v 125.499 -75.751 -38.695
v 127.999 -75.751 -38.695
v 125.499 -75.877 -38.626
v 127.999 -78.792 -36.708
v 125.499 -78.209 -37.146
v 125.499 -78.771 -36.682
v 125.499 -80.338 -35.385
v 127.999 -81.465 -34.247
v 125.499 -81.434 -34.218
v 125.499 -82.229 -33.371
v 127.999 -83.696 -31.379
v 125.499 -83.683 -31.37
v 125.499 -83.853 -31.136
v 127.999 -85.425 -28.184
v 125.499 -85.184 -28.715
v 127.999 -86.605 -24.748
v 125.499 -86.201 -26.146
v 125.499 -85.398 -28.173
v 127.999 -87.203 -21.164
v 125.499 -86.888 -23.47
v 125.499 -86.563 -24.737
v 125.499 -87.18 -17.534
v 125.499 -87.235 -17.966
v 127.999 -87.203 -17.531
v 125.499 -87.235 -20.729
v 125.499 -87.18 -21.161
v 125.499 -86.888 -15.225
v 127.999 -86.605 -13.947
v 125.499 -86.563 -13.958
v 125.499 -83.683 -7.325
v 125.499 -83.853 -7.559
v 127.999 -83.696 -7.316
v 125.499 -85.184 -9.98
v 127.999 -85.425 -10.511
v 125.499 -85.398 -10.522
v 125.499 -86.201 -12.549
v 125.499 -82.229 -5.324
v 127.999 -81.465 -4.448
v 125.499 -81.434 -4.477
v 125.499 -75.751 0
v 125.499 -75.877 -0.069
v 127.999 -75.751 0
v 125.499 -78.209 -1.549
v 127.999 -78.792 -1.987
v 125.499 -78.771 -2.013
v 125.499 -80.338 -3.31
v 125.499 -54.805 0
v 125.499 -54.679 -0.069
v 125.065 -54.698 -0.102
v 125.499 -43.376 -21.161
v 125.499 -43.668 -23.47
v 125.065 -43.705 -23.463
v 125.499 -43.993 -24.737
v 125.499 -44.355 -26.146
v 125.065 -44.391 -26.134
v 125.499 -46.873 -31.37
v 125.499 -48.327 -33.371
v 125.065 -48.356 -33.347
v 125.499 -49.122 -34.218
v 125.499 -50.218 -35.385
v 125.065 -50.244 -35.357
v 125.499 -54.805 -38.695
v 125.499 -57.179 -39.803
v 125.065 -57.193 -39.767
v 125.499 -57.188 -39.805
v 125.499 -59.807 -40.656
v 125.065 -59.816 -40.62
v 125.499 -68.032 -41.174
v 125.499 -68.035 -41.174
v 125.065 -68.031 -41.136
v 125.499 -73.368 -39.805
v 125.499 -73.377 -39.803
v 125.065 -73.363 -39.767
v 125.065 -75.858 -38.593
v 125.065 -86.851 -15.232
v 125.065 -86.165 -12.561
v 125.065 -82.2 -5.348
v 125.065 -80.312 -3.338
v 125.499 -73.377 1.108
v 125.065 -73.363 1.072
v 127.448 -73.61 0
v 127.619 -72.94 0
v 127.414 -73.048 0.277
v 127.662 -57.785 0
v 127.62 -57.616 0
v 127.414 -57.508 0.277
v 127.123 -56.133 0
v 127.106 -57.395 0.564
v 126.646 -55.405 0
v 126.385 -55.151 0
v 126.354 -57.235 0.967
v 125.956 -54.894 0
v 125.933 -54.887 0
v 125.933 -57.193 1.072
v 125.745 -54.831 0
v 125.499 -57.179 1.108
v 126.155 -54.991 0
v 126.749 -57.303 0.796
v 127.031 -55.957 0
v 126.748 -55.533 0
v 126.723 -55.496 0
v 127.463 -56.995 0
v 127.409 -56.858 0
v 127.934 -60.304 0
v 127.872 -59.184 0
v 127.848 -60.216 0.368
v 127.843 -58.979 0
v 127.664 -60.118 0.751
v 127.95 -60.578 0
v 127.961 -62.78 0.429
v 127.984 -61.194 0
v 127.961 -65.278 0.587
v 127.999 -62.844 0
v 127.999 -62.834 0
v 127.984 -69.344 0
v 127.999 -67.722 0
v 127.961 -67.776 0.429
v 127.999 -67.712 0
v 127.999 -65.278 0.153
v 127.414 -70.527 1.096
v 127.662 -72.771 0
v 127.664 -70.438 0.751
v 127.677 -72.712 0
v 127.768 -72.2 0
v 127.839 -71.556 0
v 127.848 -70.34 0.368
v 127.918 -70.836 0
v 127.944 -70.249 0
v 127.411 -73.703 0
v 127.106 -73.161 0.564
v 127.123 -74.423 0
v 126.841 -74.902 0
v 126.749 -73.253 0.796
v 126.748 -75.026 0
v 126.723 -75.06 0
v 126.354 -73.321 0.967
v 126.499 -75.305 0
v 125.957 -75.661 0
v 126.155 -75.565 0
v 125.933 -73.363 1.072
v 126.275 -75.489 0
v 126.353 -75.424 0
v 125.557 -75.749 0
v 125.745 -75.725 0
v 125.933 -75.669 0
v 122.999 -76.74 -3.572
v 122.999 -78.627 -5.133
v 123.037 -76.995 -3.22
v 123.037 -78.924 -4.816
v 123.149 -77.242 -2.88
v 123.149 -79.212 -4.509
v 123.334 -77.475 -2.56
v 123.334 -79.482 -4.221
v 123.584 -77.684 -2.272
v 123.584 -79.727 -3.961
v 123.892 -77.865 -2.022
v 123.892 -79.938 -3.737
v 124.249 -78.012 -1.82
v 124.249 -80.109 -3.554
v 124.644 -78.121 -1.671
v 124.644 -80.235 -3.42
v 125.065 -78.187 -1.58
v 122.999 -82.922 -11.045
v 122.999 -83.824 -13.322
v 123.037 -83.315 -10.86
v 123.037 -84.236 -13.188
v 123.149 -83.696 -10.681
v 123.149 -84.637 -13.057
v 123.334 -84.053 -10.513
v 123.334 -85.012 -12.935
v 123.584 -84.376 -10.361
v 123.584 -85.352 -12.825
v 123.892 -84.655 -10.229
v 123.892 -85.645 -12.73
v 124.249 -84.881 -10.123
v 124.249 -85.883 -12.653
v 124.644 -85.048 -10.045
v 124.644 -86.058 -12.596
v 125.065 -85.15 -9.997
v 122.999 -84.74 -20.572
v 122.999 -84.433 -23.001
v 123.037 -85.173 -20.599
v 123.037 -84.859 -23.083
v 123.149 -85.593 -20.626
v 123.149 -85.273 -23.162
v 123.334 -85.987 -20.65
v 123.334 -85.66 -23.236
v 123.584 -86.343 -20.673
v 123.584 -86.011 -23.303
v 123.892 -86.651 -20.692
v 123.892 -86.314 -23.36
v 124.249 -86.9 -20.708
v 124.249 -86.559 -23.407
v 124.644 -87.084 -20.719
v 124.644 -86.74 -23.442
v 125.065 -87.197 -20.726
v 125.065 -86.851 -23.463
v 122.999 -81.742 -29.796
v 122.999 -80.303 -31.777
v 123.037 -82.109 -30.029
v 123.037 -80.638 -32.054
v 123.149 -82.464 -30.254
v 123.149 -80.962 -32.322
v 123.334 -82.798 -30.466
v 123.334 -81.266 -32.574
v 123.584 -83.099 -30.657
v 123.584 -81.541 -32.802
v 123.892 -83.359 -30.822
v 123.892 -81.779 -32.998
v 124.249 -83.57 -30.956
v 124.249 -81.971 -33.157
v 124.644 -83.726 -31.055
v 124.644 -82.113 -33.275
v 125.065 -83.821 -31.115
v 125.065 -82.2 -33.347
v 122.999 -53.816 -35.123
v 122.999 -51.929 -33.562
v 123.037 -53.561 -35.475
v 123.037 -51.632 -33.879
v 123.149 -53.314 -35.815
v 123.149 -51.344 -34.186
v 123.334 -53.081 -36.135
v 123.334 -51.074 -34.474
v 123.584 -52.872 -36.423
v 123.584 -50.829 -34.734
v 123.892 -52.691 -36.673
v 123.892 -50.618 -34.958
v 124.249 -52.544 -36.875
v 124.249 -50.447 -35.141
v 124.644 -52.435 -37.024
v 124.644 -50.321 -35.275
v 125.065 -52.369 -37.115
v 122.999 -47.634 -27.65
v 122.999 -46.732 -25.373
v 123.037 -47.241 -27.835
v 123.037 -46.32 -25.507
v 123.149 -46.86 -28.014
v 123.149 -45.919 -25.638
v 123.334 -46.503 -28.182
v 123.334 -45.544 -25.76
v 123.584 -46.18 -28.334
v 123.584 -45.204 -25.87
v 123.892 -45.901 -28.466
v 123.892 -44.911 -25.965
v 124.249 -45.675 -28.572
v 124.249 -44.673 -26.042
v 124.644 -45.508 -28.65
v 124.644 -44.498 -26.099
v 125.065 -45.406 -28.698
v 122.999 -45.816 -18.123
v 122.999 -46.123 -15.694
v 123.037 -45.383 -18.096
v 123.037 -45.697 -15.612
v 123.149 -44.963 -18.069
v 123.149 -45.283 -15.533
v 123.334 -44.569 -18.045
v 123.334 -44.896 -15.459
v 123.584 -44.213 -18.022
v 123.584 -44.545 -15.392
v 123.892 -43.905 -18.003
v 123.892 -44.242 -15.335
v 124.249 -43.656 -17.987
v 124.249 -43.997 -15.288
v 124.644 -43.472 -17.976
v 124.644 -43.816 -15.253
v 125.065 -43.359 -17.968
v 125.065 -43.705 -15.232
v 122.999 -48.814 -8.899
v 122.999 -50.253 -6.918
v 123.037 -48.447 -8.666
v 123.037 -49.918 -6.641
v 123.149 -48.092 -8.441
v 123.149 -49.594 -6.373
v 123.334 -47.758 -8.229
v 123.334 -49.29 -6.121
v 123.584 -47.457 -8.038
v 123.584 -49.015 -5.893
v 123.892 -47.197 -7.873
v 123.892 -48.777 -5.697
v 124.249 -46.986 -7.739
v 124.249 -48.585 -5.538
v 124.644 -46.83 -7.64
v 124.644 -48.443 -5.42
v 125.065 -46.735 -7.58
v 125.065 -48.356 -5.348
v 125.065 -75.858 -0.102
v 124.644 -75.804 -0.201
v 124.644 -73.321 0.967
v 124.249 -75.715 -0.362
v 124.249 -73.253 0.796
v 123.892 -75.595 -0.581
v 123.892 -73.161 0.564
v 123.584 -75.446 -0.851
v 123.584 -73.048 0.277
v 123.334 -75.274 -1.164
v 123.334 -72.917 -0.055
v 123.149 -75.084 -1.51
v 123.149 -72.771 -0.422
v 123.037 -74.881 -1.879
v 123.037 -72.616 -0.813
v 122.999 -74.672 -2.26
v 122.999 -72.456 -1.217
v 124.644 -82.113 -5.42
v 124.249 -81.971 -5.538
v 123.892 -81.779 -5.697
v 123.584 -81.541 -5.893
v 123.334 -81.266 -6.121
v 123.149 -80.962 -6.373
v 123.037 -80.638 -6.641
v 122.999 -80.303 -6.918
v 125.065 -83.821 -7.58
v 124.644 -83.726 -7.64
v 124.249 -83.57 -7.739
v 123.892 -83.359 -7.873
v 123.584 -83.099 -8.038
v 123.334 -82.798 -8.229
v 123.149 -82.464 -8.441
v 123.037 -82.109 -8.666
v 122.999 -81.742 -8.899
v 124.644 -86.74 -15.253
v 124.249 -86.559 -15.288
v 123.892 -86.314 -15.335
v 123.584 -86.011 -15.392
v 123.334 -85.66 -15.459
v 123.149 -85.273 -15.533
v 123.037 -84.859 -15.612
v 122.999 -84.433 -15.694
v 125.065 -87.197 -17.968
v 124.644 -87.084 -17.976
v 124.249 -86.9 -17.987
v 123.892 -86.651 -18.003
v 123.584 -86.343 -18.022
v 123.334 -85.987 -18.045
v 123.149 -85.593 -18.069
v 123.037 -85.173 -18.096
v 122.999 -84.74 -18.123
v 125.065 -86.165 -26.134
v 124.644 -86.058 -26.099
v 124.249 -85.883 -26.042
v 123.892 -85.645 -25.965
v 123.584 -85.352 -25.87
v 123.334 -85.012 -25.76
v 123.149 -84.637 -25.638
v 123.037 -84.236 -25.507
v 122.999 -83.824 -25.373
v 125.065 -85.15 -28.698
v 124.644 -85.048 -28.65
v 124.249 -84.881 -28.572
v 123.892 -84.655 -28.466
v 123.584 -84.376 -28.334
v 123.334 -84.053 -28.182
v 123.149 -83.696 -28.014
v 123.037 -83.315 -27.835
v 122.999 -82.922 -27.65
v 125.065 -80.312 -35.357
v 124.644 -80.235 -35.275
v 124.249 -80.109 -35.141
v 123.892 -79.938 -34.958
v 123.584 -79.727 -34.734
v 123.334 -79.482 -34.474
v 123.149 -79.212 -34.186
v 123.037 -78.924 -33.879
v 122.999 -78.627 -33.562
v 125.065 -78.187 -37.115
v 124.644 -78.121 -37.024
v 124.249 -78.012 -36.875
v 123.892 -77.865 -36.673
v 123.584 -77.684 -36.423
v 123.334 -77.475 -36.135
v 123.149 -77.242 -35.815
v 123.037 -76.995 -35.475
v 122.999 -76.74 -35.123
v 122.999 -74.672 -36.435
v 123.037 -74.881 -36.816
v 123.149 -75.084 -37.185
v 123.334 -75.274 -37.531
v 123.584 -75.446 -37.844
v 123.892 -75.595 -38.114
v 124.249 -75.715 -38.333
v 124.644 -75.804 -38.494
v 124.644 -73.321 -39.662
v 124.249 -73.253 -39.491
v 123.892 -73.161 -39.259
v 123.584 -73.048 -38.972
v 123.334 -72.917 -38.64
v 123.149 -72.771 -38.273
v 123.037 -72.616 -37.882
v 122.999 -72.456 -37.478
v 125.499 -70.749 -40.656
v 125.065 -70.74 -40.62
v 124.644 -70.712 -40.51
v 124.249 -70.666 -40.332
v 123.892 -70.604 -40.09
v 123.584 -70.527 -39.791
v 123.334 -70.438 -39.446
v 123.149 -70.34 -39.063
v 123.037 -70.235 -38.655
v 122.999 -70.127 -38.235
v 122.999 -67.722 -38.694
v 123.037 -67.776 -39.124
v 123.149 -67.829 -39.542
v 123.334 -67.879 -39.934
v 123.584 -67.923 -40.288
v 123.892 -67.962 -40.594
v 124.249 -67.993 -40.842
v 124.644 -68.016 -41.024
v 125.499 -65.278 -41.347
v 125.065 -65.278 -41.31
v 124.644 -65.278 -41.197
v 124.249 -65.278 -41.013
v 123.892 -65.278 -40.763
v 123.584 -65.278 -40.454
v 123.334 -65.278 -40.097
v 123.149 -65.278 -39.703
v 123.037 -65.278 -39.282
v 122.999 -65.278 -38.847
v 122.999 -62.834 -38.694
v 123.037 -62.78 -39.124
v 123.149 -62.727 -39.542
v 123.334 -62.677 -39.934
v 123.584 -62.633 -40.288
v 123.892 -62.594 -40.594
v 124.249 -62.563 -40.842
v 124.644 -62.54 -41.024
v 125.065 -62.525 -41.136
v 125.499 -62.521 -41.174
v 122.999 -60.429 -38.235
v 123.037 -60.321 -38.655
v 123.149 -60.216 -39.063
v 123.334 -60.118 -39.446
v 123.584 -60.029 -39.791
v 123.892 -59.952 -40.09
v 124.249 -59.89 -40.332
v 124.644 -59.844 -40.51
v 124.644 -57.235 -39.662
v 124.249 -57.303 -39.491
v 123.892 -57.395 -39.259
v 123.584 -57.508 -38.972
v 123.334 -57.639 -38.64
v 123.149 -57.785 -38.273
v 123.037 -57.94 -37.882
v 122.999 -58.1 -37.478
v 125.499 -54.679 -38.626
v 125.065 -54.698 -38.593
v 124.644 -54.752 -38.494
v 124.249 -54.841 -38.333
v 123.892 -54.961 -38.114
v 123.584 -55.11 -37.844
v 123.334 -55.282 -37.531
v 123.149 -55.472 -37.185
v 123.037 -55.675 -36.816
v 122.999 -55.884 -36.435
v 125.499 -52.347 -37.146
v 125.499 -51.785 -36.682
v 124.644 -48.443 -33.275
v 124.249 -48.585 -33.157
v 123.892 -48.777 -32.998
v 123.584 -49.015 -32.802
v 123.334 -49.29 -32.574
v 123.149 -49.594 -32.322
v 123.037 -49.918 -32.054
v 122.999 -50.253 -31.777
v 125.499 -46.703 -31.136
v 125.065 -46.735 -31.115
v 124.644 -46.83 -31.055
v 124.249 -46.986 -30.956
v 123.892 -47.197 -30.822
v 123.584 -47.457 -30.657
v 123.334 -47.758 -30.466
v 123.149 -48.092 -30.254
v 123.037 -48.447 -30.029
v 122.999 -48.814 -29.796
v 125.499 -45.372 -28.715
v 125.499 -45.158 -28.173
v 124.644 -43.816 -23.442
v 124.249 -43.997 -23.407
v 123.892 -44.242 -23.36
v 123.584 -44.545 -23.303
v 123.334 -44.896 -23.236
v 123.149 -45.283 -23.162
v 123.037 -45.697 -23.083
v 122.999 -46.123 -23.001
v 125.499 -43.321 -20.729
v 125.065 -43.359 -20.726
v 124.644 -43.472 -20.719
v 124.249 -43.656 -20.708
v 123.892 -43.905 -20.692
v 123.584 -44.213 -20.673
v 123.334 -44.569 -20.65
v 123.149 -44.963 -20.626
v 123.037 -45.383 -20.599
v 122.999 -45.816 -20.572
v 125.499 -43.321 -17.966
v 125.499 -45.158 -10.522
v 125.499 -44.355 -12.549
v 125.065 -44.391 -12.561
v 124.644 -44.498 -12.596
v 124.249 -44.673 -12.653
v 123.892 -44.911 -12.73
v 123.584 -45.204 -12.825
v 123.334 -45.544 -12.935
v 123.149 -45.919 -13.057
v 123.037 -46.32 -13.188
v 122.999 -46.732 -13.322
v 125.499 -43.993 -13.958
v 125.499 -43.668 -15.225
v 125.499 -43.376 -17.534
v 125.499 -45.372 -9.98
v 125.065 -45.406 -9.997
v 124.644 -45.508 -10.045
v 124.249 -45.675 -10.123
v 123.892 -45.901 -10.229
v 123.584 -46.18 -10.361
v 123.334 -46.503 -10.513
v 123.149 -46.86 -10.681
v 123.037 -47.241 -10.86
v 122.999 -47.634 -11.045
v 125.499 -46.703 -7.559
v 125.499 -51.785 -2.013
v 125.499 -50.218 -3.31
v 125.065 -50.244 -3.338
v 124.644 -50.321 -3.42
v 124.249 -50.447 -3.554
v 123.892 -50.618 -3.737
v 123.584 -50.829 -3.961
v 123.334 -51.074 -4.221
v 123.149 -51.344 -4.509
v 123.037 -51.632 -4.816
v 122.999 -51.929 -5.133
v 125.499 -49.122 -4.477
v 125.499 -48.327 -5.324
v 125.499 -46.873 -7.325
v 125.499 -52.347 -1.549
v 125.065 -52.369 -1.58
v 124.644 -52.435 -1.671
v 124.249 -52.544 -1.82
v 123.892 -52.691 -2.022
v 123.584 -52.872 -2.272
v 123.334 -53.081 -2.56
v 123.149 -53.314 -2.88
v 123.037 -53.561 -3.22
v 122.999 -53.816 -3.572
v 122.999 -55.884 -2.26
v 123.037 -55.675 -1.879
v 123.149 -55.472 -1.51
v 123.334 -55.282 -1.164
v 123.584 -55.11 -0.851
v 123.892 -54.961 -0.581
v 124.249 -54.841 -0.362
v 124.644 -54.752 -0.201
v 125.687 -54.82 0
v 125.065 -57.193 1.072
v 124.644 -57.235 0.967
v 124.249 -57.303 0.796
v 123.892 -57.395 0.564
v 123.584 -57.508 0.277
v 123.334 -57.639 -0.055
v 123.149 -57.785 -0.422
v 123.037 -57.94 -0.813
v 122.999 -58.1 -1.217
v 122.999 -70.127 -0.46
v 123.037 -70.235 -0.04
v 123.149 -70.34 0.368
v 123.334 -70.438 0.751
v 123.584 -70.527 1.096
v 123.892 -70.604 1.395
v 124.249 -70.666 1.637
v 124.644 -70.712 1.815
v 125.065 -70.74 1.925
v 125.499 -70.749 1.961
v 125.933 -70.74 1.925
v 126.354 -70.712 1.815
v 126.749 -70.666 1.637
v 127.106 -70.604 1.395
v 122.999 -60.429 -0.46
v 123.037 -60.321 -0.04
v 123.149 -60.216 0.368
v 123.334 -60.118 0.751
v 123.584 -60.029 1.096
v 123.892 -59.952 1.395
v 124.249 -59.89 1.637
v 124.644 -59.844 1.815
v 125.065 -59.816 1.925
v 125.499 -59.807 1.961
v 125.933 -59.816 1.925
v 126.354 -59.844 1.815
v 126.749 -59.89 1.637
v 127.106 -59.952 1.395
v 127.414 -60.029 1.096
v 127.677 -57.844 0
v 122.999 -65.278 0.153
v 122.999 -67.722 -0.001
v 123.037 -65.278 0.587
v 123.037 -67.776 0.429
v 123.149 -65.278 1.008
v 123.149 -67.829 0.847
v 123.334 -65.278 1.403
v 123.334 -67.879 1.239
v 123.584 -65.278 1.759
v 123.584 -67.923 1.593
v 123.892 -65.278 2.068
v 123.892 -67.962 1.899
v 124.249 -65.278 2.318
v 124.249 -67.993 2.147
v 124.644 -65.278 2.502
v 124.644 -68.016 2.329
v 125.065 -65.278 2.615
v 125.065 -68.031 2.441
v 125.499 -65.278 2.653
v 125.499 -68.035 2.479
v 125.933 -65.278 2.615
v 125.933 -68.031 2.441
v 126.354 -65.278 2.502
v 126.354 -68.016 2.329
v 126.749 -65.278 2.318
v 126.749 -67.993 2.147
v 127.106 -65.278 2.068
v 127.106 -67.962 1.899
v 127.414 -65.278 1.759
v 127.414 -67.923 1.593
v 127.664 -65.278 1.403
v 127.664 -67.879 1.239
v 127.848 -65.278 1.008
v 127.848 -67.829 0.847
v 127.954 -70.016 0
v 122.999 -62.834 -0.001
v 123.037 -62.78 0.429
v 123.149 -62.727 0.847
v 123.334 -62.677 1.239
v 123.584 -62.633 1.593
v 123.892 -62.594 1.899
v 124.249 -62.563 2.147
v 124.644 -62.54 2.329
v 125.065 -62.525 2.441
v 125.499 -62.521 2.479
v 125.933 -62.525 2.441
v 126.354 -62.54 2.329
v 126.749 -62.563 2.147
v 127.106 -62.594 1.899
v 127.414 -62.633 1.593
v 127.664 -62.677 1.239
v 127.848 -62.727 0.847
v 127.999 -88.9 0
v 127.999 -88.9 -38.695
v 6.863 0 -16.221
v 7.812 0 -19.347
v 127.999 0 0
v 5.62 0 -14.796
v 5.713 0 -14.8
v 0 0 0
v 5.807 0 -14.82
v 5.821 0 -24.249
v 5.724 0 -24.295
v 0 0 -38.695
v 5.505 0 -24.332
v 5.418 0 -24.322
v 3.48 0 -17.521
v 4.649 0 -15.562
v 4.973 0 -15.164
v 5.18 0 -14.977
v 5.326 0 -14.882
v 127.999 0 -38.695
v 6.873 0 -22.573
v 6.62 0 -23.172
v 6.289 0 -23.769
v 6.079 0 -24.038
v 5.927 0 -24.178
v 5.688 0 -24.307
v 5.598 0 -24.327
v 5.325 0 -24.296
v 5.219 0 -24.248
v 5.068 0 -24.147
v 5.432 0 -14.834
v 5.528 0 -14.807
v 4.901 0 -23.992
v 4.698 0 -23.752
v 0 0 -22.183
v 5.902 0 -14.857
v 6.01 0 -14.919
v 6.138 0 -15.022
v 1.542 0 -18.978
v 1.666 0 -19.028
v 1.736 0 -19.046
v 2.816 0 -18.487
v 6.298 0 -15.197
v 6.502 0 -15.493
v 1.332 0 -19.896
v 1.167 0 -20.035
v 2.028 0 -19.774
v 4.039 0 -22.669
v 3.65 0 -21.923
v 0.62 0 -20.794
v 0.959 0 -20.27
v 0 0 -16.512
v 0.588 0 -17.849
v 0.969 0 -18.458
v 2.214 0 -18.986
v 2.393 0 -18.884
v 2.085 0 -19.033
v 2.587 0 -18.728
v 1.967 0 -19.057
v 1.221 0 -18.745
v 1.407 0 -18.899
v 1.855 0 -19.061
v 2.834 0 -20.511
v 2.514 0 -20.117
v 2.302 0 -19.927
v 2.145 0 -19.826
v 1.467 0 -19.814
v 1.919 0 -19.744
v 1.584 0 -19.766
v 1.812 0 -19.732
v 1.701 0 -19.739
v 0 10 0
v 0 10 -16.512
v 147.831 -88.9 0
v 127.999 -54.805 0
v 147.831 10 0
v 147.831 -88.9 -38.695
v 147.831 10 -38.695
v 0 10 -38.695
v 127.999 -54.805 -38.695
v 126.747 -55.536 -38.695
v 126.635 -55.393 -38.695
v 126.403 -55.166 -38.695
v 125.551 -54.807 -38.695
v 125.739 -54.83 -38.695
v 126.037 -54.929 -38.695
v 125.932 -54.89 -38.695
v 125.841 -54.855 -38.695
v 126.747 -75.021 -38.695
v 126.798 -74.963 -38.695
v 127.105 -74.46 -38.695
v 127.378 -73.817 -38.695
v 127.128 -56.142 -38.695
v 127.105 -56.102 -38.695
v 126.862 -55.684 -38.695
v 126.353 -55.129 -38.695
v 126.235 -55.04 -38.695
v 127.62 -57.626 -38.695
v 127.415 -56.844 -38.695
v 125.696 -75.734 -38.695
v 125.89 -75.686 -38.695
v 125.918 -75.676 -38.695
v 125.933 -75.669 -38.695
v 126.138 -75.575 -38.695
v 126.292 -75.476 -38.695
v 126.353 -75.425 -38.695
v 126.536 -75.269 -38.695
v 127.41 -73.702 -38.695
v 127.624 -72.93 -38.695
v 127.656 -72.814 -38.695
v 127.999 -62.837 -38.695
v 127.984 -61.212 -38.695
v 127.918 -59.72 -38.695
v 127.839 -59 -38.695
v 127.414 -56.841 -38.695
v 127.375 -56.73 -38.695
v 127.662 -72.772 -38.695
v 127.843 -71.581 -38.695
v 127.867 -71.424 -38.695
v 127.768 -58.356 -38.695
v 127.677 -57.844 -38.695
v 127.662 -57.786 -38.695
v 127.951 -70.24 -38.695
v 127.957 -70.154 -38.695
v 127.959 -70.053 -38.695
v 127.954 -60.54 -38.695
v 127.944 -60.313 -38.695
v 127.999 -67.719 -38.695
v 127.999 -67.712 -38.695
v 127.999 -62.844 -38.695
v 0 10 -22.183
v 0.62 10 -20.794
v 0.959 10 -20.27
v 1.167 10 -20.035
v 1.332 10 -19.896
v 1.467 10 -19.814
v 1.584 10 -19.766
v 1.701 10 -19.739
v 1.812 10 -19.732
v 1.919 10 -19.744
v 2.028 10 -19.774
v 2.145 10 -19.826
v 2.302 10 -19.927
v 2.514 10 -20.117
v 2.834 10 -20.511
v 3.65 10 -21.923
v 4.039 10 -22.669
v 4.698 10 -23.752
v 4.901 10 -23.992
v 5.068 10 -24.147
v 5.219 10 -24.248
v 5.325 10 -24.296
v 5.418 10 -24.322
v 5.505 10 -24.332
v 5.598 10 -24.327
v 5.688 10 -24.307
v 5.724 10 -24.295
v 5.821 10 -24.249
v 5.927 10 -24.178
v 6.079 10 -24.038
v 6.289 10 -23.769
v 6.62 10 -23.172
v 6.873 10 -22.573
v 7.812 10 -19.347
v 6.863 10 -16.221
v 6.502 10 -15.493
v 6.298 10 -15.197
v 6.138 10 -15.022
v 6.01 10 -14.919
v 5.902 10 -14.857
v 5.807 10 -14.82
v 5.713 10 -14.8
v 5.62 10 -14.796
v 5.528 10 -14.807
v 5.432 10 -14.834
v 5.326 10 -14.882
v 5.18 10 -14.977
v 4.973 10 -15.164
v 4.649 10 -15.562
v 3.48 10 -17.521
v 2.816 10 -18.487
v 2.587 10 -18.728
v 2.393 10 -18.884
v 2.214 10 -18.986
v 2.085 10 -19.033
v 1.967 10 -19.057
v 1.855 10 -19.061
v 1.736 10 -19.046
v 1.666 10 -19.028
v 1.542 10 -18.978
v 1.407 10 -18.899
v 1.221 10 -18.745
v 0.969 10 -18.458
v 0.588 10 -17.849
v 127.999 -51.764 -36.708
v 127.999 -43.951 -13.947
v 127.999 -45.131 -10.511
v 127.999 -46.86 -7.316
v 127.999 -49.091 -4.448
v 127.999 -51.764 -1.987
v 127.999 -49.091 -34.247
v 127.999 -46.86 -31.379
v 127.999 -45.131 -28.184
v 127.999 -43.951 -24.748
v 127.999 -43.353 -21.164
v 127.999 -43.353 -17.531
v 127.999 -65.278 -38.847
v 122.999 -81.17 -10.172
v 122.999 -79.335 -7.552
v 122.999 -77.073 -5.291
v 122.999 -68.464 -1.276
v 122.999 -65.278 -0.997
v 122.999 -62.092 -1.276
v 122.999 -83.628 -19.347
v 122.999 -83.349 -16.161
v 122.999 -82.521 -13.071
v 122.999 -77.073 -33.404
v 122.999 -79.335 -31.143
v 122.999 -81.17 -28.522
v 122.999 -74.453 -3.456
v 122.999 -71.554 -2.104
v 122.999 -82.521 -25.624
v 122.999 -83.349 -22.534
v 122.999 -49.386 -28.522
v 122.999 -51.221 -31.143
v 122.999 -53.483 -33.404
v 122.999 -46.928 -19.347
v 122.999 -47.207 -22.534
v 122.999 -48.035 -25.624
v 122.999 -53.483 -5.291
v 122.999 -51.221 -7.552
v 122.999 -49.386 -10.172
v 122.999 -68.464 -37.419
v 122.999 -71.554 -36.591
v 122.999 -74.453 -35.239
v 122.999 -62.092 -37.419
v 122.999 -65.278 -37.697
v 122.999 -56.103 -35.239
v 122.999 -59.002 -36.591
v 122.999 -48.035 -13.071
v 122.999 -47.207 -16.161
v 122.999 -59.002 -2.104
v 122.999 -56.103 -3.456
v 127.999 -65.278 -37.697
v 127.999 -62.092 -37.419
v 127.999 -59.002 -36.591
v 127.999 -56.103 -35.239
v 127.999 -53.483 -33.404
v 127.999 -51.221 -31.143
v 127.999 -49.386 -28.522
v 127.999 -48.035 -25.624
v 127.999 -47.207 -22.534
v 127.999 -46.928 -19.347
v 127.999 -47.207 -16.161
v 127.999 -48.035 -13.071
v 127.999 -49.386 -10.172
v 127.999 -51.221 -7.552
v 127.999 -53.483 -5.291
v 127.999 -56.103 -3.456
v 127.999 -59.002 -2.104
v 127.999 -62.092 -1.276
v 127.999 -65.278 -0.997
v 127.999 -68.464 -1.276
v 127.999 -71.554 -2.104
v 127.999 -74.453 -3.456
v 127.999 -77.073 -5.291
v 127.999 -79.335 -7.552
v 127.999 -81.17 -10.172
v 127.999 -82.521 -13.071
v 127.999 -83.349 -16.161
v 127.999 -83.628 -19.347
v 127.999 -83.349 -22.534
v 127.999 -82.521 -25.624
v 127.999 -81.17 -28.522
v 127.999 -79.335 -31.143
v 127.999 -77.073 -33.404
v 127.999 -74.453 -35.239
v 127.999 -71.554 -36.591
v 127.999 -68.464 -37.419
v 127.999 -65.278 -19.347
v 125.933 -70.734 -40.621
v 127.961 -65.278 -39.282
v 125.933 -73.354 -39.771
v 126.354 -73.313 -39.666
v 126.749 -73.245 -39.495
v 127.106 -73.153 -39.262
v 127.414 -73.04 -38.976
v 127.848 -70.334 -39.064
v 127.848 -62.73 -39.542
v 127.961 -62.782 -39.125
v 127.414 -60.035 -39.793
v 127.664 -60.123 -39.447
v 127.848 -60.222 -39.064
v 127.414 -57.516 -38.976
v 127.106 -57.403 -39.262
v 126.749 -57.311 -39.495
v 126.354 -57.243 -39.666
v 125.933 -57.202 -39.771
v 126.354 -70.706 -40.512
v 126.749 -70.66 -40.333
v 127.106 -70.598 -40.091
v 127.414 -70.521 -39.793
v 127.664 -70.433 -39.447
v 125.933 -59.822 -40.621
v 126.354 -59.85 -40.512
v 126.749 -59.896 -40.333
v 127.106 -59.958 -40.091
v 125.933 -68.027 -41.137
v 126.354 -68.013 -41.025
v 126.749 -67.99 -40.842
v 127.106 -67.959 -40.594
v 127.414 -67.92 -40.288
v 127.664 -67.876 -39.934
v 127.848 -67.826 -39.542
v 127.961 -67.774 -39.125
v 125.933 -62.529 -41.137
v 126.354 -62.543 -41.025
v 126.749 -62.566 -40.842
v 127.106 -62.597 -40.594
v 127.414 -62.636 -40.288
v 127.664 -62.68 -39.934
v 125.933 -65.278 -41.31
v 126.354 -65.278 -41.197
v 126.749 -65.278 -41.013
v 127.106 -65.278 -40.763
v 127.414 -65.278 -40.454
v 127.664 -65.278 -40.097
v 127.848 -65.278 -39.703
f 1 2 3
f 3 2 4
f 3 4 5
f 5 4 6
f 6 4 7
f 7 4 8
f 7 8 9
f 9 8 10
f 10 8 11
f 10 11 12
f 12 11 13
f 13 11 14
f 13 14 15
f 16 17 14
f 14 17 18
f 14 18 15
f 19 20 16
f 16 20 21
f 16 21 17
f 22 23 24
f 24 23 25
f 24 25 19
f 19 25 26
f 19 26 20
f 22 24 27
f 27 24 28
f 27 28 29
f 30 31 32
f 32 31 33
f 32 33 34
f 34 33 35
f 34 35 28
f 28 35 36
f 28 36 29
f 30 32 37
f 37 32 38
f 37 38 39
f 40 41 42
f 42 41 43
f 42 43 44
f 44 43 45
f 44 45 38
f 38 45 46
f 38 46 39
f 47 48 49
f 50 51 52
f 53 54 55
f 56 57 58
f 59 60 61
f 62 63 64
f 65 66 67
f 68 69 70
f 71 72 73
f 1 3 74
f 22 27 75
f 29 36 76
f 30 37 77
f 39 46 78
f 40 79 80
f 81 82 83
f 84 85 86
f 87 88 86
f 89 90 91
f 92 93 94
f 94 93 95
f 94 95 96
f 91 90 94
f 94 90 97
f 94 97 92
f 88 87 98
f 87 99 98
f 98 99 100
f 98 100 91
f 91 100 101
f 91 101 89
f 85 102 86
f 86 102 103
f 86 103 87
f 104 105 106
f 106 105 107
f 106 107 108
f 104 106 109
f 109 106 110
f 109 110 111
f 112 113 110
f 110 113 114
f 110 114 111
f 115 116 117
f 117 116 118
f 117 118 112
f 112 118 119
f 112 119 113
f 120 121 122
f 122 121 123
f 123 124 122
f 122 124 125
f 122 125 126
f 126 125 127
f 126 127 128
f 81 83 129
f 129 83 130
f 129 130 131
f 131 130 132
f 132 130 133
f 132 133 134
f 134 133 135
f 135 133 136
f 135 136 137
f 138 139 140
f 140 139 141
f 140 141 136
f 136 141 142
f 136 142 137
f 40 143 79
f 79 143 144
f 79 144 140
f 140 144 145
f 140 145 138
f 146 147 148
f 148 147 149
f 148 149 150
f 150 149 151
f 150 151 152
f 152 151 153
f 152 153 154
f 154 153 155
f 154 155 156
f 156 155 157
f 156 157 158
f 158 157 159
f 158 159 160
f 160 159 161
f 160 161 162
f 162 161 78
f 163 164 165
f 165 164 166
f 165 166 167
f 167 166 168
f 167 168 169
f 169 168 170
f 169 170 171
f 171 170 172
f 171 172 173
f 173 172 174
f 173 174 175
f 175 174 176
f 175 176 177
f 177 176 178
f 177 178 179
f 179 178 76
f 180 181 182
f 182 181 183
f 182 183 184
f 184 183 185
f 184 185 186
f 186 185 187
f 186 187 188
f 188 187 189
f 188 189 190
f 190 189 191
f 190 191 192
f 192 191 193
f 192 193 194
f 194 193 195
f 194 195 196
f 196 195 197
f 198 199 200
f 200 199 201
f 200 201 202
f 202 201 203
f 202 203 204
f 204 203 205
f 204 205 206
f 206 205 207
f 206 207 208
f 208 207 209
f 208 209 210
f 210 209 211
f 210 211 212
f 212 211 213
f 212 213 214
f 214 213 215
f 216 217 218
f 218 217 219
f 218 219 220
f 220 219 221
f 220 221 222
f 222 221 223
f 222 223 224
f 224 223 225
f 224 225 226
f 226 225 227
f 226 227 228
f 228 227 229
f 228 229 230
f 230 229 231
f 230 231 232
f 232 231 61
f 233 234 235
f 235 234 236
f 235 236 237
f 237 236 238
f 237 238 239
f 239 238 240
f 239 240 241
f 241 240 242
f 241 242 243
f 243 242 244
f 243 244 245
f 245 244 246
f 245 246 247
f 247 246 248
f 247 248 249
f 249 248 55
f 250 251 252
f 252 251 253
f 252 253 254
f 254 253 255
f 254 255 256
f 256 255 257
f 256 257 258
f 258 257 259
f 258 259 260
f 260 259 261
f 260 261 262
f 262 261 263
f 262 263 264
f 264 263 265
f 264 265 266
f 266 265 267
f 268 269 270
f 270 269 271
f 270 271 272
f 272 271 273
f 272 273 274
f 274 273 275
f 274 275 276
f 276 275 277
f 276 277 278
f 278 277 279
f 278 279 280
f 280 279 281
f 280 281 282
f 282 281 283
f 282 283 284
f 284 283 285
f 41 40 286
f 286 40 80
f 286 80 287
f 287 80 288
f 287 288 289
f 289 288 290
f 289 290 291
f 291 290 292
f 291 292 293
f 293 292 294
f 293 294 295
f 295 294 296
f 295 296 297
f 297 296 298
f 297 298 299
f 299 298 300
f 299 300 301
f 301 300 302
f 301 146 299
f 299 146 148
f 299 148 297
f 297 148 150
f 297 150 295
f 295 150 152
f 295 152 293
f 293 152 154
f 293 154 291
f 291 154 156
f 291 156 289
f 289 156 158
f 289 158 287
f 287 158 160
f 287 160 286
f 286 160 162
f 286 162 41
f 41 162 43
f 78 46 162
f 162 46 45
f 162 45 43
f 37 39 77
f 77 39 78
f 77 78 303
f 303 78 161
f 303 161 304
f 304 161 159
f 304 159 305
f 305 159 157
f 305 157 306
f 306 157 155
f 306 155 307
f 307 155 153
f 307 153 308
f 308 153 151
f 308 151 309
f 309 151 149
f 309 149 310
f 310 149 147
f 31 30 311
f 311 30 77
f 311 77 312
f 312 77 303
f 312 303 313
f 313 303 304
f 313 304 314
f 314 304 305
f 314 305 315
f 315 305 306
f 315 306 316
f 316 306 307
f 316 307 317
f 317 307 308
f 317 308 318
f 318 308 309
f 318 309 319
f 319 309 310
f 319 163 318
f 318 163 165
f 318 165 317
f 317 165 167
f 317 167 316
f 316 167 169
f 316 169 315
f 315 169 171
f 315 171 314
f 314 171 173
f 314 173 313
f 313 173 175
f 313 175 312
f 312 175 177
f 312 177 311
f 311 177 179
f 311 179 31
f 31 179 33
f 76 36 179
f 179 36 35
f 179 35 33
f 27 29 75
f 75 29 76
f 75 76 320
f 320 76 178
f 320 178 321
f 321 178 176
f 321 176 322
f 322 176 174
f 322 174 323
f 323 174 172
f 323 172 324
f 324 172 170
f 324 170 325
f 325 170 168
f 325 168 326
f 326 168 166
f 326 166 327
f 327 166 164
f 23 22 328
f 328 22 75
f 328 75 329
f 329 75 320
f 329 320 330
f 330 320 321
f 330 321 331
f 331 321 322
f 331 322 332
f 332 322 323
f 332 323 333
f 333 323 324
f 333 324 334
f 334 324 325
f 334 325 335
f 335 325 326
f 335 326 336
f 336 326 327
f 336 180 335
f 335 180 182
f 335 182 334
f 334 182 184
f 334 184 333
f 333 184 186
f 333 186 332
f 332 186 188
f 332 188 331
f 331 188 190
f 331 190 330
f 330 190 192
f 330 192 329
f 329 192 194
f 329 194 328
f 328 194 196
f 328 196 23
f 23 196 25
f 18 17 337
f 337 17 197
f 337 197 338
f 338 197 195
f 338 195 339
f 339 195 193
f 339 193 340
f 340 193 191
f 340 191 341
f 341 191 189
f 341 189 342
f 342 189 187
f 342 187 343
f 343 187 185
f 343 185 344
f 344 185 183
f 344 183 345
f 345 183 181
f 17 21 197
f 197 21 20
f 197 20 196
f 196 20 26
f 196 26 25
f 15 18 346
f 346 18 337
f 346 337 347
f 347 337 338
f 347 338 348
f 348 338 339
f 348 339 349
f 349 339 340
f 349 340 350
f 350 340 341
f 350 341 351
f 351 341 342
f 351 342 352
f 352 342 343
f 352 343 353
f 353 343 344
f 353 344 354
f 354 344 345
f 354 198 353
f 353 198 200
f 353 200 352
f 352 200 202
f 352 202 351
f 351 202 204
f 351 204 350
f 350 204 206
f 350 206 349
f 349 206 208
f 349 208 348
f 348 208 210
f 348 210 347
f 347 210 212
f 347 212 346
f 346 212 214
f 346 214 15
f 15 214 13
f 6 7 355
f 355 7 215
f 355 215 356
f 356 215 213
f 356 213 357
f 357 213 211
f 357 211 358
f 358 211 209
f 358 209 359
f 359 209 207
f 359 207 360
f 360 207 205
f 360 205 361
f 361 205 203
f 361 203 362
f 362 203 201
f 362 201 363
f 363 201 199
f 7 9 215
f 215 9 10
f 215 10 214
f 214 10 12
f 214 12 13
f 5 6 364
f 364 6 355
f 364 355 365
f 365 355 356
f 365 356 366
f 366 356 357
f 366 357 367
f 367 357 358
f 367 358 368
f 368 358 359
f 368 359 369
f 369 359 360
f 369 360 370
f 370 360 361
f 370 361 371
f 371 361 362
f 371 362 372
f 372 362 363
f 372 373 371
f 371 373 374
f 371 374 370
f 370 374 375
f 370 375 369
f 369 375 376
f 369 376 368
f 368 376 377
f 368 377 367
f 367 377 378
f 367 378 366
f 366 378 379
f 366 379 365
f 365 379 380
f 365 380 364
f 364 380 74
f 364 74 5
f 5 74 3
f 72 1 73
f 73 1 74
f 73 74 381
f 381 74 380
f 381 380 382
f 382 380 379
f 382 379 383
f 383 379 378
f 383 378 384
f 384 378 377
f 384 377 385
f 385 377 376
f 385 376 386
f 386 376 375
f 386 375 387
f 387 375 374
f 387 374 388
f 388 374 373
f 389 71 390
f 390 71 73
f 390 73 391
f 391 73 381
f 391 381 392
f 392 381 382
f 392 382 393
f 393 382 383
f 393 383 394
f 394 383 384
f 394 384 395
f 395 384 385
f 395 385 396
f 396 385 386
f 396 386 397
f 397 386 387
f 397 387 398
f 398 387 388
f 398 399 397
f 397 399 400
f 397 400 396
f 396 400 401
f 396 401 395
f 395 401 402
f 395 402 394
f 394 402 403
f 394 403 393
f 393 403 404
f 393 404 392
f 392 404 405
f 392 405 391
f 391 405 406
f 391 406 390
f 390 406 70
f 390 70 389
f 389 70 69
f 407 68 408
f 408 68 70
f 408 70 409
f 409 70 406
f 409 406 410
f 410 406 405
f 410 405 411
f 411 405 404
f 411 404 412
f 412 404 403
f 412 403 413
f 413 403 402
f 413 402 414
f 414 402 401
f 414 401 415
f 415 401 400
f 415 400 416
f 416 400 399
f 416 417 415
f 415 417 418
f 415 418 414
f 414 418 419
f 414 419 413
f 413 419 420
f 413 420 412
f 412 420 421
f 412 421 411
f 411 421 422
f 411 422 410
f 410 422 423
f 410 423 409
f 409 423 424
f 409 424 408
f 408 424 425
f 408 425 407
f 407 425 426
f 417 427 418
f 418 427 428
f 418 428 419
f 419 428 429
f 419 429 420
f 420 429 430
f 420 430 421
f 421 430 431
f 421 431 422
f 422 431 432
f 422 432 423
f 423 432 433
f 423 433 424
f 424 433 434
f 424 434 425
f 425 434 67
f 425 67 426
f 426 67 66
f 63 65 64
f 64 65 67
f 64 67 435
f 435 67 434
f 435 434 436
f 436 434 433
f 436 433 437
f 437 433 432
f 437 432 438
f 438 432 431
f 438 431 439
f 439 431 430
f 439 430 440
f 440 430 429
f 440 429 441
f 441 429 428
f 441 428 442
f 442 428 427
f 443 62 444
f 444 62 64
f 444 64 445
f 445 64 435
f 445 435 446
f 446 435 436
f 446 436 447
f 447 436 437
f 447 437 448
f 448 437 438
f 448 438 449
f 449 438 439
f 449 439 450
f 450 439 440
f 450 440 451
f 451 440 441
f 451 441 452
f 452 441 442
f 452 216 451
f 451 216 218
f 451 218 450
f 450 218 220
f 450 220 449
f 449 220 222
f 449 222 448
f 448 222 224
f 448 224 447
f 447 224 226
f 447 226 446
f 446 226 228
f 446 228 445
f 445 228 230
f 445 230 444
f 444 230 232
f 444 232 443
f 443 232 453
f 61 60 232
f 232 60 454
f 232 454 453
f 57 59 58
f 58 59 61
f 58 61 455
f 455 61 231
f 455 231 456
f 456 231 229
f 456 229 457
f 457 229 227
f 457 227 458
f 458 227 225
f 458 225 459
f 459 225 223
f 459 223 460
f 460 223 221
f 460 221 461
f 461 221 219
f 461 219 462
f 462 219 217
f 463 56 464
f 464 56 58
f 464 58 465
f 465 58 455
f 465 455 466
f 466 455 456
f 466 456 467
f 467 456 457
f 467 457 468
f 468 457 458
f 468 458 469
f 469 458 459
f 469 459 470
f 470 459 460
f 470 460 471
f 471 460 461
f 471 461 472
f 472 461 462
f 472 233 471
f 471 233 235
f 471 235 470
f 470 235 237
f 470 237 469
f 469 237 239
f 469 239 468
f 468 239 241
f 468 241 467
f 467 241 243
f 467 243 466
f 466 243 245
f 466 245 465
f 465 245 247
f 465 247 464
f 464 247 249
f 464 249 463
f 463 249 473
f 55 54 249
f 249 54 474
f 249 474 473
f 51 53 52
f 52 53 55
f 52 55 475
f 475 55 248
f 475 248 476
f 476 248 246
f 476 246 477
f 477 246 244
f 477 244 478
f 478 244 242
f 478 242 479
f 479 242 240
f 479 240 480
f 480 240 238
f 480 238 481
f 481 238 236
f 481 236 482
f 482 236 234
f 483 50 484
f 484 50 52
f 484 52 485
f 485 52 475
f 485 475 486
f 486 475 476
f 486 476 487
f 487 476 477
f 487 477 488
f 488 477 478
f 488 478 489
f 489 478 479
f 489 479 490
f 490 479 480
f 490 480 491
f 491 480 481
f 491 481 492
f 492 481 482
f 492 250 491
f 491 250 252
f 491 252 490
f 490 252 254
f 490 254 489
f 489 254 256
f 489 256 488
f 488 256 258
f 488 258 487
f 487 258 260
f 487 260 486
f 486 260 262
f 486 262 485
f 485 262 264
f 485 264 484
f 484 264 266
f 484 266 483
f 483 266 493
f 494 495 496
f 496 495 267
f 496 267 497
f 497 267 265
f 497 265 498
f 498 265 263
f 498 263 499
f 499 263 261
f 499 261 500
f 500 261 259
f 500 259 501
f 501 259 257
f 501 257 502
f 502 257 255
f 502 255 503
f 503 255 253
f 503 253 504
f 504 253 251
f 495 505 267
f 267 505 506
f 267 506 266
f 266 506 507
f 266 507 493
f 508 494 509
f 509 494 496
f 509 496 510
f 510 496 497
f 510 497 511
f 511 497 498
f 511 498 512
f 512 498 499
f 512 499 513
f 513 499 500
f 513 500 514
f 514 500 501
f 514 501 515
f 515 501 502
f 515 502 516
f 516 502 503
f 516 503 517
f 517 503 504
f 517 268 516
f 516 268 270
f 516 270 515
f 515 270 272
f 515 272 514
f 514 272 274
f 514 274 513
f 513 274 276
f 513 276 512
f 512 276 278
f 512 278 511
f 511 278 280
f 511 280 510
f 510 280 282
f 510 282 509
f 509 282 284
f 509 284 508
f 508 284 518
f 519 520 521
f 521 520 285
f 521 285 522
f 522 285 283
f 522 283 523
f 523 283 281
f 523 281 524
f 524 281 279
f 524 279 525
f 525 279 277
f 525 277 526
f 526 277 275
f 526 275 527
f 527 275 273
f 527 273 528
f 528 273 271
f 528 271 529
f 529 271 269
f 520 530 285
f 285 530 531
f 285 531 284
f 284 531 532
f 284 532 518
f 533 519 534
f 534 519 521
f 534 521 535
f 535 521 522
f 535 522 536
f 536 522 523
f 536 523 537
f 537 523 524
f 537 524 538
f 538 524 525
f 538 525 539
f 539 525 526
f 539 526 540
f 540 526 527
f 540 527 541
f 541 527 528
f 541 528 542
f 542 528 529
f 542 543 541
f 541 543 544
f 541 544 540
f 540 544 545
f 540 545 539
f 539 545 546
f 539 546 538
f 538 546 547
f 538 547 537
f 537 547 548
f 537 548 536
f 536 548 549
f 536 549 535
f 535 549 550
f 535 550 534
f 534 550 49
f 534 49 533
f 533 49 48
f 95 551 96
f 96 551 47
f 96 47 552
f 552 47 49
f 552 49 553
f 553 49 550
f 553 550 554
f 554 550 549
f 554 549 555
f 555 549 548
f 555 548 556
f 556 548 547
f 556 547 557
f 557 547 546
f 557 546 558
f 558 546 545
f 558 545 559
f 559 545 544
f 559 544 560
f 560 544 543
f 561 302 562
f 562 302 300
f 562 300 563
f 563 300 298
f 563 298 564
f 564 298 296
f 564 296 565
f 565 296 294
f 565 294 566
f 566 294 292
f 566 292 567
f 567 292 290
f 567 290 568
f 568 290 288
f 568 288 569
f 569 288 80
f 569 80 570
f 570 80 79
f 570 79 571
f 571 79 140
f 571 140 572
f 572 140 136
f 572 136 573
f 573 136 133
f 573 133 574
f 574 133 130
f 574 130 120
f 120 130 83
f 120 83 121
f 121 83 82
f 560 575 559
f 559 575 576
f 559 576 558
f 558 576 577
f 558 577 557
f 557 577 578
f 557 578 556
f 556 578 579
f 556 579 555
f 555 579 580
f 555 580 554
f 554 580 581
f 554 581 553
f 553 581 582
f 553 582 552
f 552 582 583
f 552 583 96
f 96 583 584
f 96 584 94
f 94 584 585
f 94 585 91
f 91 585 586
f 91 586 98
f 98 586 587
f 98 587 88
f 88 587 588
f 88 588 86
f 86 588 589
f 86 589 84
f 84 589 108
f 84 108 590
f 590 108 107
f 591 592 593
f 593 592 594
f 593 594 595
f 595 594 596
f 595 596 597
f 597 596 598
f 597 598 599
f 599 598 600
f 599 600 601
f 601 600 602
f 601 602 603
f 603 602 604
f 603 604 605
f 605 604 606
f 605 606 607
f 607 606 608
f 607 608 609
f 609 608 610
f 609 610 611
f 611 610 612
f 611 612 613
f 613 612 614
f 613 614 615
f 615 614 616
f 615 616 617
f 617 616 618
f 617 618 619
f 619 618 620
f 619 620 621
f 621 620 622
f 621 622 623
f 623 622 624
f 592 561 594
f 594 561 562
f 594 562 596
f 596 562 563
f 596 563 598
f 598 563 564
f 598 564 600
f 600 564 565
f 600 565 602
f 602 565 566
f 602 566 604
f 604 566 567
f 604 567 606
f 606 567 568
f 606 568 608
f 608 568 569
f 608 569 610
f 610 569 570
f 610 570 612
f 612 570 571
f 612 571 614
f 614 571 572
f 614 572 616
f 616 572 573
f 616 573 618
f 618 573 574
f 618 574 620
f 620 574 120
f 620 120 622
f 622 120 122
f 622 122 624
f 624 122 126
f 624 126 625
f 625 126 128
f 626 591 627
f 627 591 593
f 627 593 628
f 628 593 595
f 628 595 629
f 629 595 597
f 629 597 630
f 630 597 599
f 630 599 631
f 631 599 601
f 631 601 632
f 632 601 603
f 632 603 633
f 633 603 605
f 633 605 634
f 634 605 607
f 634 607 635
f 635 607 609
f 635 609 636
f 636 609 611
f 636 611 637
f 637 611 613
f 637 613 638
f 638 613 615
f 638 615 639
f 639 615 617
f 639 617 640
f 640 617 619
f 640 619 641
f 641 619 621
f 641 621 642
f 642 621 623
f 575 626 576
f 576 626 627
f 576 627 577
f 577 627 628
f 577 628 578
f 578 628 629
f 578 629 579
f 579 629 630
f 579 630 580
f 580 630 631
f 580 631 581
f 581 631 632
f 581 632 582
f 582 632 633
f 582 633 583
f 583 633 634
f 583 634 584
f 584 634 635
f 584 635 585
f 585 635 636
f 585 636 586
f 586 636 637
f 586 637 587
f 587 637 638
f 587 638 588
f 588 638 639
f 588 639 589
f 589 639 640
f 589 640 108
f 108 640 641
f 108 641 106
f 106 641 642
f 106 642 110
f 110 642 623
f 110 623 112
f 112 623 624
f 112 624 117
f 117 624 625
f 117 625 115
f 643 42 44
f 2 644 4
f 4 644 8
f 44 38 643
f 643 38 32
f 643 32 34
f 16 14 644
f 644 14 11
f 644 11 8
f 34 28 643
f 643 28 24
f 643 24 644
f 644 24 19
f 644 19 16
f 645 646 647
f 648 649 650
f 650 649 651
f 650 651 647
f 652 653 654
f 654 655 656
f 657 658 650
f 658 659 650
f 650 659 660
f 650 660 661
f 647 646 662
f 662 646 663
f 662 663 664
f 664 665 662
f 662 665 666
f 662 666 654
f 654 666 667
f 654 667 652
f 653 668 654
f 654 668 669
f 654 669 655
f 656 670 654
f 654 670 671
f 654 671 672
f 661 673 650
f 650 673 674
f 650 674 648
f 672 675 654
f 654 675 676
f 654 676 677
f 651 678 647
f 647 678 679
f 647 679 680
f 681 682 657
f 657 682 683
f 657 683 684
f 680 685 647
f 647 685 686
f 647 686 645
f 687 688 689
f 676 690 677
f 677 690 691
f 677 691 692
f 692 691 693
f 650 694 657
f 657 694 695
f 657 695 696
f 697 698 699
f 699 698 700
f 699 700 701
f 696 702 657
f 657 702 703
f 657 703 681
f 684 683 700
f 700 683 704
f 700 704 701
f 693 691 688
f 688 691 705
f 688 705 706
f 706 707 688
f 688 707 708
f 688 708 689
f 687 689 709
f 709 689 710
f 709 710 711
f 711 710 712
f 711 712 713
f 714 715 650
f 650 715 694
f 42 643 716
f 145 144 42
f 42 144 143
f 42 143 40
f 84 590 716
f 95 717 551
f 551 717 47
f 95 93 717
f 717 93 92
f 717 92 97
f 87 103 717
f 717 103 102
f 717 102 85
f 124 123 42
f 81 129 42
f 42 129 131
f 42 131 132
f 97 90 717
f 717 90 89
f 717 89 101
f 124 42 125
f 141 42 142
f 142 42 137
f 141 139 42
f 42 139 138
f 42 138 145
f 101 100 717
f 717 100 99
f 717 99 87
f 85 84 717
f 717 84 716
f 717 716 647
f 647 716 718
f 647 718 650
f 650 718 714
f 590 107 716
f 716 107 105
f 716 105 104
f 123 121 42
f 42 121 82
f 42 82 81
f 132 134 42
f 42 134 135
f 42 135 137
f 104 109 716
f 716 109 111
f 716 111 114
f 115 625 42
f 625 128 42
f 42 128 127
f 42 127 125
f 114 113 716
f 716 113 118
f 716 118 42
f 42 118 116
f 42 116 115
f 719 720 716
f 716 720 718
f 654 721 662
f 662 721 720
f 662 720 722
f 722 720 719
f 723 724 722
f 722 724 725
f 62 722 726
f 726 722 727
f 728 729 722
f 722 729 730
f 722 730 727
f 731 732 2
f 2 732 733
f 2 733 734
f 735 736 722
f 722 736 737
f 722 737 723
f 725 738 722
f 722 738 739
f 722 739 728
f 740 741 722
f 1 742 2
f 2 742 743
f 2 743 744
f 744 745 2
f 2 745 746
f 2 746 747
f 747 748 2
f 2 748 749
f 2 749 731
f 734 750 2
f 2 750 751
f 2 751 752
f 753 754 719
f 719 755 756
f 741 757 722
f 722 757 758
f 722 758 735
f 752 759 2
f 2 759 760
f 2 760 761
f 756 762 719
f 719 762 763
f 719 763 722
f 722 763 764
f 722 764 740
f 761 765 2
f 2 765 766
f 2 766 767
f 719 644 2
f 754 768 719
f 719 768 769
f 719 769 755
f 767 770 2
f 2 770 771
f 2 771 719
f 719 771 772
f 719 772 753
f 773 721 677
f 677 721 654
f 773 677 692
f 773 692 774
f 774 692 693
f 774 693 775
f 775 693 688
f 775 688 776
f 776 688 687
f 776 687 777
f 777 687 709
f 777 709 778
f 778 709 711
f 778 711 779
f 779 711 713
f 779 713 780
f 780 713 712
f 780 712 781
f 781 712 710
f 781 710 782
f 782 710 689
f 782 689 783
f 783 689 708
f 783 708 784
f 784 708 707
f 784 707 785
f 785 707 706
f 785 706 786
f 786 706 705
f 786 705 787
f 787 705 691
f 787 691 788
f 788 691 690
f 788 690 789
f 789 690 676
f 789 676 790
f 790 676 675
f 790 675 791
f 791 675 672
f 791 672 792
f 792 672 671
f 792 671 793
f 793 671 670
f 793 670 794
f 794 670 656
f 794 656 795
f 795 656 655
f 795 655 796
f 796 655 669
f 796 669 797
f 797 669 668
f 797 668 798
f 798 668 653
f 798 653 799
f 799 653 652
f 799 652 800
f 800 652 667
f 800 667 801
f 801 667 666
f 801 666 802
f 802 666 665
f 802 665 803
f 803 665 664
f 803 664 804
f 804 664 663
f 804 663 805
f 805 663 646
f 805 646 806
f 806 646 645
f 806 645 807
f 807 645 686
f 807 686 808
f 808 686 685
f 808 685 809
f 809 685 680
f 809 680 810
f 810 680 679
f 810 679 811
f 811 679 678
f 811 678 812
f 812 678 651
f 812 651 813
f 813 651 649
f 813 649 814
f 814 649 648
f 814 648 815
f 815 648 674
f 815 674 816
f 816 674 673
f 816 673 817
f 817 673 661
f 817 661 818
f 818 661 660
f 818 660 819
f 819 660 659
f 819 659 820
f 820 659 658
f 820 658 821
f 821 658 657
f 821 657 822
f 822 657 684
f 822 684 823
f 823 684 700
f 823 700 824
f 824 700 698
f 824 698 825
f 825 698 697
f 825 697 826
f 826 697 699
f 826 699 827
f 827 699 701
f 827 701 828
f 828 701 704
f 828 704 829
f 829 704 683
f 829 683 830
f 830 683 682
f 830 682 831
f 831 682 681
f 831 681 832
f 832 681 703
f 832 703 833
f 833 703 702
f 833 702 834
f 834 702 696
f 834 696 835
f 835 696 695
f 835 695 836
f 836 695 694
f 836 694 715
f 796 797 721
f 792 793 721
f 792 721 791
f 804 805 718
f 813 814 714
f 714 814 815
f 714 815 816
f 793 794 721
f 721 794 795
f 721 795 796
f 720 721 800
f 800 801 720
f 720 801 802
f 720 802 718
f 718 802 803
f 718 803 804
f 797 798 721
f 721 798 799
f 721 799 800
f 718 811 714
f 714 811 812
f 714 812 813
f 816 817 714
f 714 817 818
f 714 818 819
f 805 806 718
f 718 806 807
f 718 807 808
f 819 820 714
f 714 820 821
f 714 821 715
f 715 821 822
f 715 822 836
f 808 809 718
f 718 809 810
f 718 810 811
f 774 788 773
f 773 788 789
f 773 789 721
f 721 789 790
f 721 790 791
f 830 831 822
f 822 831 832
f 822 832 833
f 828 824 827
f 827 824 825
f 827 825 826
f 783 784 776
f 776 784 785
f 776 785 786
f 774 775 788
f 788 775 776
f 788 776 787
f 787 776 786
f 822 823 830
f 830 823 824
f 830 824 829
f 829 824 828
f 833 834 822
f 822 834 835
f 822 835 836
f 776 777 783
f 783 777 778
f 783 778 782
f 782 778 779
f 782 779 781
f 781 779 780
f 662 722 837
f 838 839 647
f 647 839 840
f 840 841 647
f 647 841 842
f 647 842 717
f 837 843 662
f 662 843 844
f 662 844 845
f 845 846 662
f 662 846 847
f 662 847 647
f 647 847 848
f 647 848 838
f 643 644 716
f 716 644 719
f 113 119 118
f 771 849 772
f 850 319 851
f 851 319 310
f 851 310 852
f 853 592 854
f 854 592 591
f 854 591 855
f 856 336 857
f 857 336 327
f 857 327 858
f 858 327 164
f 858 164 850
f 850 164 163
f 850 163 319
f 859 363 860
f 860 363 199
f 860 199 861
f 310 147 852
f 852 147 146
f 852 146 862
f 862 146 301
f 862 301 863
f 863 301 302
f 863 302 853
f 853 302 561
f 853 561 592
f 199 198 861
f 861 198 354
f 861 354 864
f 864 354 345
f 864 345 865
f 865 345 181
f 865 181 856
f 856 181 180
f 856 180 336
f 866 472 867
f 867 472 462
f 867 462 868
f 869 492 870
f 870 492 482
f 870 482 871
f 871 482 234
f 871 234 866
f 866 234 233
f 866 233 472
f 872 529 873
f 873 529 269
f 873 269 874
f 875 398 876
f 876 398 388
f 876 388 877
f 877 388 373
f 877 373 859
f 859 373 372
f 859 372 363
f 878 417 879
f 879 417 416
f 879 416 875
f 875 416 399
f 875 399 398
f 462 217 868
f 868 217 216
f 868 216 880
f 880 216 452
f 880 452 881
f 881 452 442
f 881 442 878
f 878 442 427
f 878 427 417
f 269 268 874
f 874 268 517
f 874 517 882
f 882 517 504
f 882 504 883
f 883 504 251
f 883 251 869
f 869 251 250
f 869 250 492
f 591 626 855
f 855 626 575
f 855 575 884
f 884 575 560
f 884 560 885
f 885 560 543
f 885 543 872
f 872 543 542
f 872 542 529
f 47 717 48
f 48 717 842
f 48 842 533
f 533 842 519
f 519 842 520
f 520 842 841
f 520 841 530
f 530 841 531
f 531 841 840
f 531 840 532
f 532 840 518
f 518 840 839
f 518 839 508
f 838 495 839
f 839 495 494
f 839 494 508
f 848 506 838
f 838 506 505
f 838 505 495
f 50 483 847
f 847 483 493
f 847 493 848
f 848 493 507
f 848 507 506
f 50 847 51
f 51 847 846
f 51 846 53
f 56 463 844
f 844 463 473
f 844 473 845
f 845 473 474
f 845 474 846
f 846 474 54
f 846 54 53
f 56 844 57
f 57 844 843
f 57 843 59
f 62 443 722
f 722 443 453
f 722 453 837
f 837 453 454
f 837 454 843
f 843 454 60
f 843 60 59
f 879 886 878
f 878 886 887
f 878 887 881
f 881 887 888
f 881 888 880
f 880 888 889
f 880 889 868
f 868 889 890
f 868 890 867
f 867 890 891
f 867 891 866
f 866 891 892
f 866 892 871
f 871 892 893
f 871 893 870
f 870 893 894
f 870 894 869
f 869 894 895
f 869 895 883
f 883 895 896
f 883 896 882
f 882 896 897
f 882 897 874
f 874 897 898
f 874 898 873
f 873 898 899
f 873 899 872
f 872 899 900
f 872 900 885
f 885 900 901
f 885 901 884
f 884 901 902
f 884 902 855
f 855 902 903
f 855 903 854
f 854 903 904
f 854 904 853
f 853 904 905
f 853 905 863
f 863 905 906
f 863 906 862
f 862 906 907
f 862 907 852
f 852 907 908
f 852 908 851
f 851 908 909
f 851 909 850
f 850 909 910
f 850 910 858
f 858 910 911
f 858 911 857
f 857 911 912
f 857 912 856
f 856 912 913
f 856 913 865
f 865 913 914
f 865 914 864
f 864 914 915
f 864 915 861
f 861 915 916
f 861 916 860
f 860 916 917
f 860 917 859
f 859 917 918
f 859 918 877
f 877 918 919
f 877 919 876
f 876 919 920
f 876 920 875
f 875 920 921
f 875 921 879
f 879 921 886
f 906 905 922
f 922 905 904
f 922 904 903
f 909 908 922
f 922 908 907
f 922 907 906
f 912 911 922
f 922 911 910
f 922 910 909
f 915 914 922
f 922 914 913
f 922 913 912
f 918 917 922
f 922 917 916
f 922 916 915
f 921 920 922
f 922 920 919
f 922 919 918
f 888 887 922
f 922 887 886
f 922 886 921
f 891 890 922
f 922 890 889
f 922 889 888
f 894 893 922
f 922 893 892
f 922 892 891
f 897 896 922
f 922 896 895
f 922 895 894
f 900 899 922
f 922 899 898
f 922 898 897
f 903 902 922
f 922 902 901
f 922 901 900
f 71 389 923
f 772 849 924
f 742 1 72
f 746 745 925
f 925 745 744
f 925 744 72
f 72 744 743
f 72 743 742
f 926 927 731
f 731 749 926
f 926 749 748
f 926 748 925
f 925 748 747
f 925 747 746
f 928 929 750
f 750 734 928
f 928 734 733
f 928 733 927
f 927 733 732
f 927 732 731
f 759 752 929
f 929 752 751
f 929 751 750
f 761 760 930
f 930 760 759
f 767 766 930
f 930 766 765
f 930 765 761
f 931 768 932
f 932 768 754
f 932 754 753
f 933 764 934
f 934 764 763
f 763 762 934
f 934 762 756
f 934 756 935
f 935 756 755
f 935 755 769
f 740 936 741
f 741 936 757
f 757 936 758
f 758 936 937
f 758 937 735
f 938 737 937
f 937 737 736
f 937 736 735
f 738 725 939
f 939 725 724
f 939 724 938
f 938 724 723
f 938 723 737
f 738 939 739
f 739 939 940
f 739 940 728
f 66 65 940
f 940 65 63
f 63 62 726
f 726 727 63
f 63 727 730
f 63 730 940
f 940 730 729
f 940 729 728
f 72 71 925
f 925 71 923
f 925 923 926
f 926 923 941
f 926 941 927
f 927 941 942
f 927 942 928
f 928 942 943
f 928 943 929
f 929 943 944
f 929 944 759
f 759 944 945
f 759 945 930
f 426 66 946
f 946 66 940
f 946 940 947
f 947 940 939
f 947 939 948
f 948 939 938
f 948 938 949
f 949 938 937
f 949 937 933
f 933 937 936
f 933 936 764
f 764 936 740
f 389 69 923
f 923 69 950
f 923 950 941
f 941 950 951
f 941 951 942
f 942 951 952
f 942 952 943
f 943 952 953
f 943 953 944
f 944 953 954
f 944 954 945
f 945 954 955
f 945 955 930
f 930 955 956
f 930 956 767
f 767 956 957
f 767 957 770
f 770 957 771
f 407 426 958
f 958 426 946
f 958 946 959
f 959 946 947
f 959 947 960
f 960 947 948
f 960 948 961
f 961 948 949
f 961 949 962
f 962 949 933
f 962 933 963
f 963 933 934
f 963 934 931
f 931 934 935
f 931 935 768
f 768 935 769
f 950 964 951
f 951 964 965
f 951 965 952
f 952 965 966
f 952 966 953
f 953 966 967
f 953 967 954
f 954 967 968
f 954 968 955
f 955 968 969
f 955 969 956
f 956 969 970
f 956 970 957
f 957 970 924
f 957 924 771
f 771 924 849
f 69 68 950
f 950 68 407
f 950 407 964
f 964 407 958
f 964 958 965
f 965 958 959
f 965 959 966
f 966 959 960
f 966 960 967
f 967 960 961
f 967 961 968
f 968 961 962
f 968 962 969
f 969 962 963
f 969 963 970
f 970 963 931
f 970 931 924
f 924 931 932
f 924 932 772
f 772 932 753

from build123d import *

# Parameters (mm, degrees)
BOSS_EXTRUDE1_DEPTH = 10
SKETCH5_W           = 19.832190572
SKETCH5_H           = 38.694970839
BOSS_EXTRUDE2_DEPTH = 88.9
SKETCH6_R           = 22
SKETCH6_R_2         = 18.35
BOSS_EXTRUDE5_DEPTH = 5
FILLET8_R           = 2.5
FILLET10_R          = 2.5


# Some blends are built 0.0001 mm under size
with BuildPart() as part:
    # Sketch1 → Boss-Extrude1 (new body)
    with BuildSketch(Plane(origin=(0, 0, 0), x_dir=(1, 0, 0), z_dir=(0, 1, 0))):
        with BuildLine():
            Line((0, 22.182836405), (0, 38.694970839))
            Line((0, 38.694970839), (147.830868253, 38.694970839))
            Line((147.830868253, 38.694970839), (147.830868253, 0))
            Line((147.830868253, 0), (0, 0))
            Line((0, 0), (0, 16.512134434))
            add(Edge.make_bspline(
                [(0, 16.512134434), (3.388756459, 25.554510726), (4.766553868, 6.635260128), (7.812405429, 19.34748542)],
                knots=[0, 0, 0, 0, 1, 1, 1, 1], degree=3))
            add(Edge.make_bspline(
                [(0, 22.182836405), (3.388756459, 13.140460113), (4.562234719, 33.060495119), (7.812405429, 19.34748542)],
                knots=[0, 0, 0, 0, 1, 1, 1, 1], degree=3))
        make_face()
    extrude(amount=BOSS_EXTRUDE1_DEPTH)

    # Sketch5 → Boss-Extrude2 (add)
    with BuildSketch(Plane.XZ):
        with Locations((137.914772967, -19.347485419)):
            Rectangle(SKETCH5_W, SKETCH5_H)
    extrude(amount=BOSS_EXTRUDE2_DEPTH)

    # Sketch6 → Boss-Extrude5 (add)
    with BuildSketch(Plane.ZY.offset(-127.998677681)):
        with Locations(Location((-19.34748542, -65.278, 0), (0, 0, 151.573820003))):
            Circle(SKETCH6_R)
        with Locations((-19.34748542, -65.278)):
            Circle(SKETCH6_R_2, mode=Mode.SUBTRACT)
    extrude(amount=BOSS_EXTRUDE5_DEPTH)

    # Fillet8
    # the kernel refuses this fillet: 2.5 mm, written as the material it takes off along each edge
    with BuildSketch(Plane(origin=(122.998677681, -65.278, -19.34748542), x_dir=(0, 0.4760260947170219, -0.8794311554342733), z_dir=(0, 0.8794311554342733, 0.4760260947170219))) as fillet8_piece_1:
        with BuildLine():
            CenterArc((22 - FILLET8_R, -FILLET8_R), FILLET8_R, 0, 90)
            Line((22 - FILLET8_R, 0), (22, 0))
            Line((22, 0), (22, -FILLET8_R))
        make_face()
    revolve(axis=Axis((122.998677681, -65.278, -19.34748542), (-1, 0, 0)), mode=Mode.SUBTRACT)
    with BuildSketch(Plane(origin=(127.998677681, -65.278, -19.34748542), x_dir=(0, -0.7034691190214044, 0.7107258251838392), z_dir=(0, -0.7107258251838392, -0.7034691190214044))) as fillet8_piece_2_section:
        with BuildLine():
            CenterArc((22 - FILLET8_R, FILLET8_R), FILLET8_R, 270, 90)
            Line((22 - FILLET8_R, 0), (22, 0))
            Line((22, 0), (22, FILLET8_R))
        make_face()
    fillet8_piece_2 = revolve(axis=Axis((127.998677681, -65.278, -19.34748542), (-1, 0, 0)), revolution_arc=89.411997633, mode=Mode.PRIVATE)
    fillet8_piece_2 = split(fillet8_piece_2, bisect_by=Plane(origin=(127.287251046, -65.278, 0), z_dir=(0, 0, 1)), keep=Keep.TOP, mode=Mode.PRIVATE)
    add(fillet8_piece_2, mode=Mode.SUBTRACT)

    # Fillet10
    fillet10_edges = [part.edges().sort_by_distance(p)[0] for p in [
        (127.998677681, -65.278, -41.34748542),
    ]]
    fillet(fillet10_edges, radius=FILLET10_R - 0.0001)  # a hair under: the kernel refuses the full size


solid = part.part
